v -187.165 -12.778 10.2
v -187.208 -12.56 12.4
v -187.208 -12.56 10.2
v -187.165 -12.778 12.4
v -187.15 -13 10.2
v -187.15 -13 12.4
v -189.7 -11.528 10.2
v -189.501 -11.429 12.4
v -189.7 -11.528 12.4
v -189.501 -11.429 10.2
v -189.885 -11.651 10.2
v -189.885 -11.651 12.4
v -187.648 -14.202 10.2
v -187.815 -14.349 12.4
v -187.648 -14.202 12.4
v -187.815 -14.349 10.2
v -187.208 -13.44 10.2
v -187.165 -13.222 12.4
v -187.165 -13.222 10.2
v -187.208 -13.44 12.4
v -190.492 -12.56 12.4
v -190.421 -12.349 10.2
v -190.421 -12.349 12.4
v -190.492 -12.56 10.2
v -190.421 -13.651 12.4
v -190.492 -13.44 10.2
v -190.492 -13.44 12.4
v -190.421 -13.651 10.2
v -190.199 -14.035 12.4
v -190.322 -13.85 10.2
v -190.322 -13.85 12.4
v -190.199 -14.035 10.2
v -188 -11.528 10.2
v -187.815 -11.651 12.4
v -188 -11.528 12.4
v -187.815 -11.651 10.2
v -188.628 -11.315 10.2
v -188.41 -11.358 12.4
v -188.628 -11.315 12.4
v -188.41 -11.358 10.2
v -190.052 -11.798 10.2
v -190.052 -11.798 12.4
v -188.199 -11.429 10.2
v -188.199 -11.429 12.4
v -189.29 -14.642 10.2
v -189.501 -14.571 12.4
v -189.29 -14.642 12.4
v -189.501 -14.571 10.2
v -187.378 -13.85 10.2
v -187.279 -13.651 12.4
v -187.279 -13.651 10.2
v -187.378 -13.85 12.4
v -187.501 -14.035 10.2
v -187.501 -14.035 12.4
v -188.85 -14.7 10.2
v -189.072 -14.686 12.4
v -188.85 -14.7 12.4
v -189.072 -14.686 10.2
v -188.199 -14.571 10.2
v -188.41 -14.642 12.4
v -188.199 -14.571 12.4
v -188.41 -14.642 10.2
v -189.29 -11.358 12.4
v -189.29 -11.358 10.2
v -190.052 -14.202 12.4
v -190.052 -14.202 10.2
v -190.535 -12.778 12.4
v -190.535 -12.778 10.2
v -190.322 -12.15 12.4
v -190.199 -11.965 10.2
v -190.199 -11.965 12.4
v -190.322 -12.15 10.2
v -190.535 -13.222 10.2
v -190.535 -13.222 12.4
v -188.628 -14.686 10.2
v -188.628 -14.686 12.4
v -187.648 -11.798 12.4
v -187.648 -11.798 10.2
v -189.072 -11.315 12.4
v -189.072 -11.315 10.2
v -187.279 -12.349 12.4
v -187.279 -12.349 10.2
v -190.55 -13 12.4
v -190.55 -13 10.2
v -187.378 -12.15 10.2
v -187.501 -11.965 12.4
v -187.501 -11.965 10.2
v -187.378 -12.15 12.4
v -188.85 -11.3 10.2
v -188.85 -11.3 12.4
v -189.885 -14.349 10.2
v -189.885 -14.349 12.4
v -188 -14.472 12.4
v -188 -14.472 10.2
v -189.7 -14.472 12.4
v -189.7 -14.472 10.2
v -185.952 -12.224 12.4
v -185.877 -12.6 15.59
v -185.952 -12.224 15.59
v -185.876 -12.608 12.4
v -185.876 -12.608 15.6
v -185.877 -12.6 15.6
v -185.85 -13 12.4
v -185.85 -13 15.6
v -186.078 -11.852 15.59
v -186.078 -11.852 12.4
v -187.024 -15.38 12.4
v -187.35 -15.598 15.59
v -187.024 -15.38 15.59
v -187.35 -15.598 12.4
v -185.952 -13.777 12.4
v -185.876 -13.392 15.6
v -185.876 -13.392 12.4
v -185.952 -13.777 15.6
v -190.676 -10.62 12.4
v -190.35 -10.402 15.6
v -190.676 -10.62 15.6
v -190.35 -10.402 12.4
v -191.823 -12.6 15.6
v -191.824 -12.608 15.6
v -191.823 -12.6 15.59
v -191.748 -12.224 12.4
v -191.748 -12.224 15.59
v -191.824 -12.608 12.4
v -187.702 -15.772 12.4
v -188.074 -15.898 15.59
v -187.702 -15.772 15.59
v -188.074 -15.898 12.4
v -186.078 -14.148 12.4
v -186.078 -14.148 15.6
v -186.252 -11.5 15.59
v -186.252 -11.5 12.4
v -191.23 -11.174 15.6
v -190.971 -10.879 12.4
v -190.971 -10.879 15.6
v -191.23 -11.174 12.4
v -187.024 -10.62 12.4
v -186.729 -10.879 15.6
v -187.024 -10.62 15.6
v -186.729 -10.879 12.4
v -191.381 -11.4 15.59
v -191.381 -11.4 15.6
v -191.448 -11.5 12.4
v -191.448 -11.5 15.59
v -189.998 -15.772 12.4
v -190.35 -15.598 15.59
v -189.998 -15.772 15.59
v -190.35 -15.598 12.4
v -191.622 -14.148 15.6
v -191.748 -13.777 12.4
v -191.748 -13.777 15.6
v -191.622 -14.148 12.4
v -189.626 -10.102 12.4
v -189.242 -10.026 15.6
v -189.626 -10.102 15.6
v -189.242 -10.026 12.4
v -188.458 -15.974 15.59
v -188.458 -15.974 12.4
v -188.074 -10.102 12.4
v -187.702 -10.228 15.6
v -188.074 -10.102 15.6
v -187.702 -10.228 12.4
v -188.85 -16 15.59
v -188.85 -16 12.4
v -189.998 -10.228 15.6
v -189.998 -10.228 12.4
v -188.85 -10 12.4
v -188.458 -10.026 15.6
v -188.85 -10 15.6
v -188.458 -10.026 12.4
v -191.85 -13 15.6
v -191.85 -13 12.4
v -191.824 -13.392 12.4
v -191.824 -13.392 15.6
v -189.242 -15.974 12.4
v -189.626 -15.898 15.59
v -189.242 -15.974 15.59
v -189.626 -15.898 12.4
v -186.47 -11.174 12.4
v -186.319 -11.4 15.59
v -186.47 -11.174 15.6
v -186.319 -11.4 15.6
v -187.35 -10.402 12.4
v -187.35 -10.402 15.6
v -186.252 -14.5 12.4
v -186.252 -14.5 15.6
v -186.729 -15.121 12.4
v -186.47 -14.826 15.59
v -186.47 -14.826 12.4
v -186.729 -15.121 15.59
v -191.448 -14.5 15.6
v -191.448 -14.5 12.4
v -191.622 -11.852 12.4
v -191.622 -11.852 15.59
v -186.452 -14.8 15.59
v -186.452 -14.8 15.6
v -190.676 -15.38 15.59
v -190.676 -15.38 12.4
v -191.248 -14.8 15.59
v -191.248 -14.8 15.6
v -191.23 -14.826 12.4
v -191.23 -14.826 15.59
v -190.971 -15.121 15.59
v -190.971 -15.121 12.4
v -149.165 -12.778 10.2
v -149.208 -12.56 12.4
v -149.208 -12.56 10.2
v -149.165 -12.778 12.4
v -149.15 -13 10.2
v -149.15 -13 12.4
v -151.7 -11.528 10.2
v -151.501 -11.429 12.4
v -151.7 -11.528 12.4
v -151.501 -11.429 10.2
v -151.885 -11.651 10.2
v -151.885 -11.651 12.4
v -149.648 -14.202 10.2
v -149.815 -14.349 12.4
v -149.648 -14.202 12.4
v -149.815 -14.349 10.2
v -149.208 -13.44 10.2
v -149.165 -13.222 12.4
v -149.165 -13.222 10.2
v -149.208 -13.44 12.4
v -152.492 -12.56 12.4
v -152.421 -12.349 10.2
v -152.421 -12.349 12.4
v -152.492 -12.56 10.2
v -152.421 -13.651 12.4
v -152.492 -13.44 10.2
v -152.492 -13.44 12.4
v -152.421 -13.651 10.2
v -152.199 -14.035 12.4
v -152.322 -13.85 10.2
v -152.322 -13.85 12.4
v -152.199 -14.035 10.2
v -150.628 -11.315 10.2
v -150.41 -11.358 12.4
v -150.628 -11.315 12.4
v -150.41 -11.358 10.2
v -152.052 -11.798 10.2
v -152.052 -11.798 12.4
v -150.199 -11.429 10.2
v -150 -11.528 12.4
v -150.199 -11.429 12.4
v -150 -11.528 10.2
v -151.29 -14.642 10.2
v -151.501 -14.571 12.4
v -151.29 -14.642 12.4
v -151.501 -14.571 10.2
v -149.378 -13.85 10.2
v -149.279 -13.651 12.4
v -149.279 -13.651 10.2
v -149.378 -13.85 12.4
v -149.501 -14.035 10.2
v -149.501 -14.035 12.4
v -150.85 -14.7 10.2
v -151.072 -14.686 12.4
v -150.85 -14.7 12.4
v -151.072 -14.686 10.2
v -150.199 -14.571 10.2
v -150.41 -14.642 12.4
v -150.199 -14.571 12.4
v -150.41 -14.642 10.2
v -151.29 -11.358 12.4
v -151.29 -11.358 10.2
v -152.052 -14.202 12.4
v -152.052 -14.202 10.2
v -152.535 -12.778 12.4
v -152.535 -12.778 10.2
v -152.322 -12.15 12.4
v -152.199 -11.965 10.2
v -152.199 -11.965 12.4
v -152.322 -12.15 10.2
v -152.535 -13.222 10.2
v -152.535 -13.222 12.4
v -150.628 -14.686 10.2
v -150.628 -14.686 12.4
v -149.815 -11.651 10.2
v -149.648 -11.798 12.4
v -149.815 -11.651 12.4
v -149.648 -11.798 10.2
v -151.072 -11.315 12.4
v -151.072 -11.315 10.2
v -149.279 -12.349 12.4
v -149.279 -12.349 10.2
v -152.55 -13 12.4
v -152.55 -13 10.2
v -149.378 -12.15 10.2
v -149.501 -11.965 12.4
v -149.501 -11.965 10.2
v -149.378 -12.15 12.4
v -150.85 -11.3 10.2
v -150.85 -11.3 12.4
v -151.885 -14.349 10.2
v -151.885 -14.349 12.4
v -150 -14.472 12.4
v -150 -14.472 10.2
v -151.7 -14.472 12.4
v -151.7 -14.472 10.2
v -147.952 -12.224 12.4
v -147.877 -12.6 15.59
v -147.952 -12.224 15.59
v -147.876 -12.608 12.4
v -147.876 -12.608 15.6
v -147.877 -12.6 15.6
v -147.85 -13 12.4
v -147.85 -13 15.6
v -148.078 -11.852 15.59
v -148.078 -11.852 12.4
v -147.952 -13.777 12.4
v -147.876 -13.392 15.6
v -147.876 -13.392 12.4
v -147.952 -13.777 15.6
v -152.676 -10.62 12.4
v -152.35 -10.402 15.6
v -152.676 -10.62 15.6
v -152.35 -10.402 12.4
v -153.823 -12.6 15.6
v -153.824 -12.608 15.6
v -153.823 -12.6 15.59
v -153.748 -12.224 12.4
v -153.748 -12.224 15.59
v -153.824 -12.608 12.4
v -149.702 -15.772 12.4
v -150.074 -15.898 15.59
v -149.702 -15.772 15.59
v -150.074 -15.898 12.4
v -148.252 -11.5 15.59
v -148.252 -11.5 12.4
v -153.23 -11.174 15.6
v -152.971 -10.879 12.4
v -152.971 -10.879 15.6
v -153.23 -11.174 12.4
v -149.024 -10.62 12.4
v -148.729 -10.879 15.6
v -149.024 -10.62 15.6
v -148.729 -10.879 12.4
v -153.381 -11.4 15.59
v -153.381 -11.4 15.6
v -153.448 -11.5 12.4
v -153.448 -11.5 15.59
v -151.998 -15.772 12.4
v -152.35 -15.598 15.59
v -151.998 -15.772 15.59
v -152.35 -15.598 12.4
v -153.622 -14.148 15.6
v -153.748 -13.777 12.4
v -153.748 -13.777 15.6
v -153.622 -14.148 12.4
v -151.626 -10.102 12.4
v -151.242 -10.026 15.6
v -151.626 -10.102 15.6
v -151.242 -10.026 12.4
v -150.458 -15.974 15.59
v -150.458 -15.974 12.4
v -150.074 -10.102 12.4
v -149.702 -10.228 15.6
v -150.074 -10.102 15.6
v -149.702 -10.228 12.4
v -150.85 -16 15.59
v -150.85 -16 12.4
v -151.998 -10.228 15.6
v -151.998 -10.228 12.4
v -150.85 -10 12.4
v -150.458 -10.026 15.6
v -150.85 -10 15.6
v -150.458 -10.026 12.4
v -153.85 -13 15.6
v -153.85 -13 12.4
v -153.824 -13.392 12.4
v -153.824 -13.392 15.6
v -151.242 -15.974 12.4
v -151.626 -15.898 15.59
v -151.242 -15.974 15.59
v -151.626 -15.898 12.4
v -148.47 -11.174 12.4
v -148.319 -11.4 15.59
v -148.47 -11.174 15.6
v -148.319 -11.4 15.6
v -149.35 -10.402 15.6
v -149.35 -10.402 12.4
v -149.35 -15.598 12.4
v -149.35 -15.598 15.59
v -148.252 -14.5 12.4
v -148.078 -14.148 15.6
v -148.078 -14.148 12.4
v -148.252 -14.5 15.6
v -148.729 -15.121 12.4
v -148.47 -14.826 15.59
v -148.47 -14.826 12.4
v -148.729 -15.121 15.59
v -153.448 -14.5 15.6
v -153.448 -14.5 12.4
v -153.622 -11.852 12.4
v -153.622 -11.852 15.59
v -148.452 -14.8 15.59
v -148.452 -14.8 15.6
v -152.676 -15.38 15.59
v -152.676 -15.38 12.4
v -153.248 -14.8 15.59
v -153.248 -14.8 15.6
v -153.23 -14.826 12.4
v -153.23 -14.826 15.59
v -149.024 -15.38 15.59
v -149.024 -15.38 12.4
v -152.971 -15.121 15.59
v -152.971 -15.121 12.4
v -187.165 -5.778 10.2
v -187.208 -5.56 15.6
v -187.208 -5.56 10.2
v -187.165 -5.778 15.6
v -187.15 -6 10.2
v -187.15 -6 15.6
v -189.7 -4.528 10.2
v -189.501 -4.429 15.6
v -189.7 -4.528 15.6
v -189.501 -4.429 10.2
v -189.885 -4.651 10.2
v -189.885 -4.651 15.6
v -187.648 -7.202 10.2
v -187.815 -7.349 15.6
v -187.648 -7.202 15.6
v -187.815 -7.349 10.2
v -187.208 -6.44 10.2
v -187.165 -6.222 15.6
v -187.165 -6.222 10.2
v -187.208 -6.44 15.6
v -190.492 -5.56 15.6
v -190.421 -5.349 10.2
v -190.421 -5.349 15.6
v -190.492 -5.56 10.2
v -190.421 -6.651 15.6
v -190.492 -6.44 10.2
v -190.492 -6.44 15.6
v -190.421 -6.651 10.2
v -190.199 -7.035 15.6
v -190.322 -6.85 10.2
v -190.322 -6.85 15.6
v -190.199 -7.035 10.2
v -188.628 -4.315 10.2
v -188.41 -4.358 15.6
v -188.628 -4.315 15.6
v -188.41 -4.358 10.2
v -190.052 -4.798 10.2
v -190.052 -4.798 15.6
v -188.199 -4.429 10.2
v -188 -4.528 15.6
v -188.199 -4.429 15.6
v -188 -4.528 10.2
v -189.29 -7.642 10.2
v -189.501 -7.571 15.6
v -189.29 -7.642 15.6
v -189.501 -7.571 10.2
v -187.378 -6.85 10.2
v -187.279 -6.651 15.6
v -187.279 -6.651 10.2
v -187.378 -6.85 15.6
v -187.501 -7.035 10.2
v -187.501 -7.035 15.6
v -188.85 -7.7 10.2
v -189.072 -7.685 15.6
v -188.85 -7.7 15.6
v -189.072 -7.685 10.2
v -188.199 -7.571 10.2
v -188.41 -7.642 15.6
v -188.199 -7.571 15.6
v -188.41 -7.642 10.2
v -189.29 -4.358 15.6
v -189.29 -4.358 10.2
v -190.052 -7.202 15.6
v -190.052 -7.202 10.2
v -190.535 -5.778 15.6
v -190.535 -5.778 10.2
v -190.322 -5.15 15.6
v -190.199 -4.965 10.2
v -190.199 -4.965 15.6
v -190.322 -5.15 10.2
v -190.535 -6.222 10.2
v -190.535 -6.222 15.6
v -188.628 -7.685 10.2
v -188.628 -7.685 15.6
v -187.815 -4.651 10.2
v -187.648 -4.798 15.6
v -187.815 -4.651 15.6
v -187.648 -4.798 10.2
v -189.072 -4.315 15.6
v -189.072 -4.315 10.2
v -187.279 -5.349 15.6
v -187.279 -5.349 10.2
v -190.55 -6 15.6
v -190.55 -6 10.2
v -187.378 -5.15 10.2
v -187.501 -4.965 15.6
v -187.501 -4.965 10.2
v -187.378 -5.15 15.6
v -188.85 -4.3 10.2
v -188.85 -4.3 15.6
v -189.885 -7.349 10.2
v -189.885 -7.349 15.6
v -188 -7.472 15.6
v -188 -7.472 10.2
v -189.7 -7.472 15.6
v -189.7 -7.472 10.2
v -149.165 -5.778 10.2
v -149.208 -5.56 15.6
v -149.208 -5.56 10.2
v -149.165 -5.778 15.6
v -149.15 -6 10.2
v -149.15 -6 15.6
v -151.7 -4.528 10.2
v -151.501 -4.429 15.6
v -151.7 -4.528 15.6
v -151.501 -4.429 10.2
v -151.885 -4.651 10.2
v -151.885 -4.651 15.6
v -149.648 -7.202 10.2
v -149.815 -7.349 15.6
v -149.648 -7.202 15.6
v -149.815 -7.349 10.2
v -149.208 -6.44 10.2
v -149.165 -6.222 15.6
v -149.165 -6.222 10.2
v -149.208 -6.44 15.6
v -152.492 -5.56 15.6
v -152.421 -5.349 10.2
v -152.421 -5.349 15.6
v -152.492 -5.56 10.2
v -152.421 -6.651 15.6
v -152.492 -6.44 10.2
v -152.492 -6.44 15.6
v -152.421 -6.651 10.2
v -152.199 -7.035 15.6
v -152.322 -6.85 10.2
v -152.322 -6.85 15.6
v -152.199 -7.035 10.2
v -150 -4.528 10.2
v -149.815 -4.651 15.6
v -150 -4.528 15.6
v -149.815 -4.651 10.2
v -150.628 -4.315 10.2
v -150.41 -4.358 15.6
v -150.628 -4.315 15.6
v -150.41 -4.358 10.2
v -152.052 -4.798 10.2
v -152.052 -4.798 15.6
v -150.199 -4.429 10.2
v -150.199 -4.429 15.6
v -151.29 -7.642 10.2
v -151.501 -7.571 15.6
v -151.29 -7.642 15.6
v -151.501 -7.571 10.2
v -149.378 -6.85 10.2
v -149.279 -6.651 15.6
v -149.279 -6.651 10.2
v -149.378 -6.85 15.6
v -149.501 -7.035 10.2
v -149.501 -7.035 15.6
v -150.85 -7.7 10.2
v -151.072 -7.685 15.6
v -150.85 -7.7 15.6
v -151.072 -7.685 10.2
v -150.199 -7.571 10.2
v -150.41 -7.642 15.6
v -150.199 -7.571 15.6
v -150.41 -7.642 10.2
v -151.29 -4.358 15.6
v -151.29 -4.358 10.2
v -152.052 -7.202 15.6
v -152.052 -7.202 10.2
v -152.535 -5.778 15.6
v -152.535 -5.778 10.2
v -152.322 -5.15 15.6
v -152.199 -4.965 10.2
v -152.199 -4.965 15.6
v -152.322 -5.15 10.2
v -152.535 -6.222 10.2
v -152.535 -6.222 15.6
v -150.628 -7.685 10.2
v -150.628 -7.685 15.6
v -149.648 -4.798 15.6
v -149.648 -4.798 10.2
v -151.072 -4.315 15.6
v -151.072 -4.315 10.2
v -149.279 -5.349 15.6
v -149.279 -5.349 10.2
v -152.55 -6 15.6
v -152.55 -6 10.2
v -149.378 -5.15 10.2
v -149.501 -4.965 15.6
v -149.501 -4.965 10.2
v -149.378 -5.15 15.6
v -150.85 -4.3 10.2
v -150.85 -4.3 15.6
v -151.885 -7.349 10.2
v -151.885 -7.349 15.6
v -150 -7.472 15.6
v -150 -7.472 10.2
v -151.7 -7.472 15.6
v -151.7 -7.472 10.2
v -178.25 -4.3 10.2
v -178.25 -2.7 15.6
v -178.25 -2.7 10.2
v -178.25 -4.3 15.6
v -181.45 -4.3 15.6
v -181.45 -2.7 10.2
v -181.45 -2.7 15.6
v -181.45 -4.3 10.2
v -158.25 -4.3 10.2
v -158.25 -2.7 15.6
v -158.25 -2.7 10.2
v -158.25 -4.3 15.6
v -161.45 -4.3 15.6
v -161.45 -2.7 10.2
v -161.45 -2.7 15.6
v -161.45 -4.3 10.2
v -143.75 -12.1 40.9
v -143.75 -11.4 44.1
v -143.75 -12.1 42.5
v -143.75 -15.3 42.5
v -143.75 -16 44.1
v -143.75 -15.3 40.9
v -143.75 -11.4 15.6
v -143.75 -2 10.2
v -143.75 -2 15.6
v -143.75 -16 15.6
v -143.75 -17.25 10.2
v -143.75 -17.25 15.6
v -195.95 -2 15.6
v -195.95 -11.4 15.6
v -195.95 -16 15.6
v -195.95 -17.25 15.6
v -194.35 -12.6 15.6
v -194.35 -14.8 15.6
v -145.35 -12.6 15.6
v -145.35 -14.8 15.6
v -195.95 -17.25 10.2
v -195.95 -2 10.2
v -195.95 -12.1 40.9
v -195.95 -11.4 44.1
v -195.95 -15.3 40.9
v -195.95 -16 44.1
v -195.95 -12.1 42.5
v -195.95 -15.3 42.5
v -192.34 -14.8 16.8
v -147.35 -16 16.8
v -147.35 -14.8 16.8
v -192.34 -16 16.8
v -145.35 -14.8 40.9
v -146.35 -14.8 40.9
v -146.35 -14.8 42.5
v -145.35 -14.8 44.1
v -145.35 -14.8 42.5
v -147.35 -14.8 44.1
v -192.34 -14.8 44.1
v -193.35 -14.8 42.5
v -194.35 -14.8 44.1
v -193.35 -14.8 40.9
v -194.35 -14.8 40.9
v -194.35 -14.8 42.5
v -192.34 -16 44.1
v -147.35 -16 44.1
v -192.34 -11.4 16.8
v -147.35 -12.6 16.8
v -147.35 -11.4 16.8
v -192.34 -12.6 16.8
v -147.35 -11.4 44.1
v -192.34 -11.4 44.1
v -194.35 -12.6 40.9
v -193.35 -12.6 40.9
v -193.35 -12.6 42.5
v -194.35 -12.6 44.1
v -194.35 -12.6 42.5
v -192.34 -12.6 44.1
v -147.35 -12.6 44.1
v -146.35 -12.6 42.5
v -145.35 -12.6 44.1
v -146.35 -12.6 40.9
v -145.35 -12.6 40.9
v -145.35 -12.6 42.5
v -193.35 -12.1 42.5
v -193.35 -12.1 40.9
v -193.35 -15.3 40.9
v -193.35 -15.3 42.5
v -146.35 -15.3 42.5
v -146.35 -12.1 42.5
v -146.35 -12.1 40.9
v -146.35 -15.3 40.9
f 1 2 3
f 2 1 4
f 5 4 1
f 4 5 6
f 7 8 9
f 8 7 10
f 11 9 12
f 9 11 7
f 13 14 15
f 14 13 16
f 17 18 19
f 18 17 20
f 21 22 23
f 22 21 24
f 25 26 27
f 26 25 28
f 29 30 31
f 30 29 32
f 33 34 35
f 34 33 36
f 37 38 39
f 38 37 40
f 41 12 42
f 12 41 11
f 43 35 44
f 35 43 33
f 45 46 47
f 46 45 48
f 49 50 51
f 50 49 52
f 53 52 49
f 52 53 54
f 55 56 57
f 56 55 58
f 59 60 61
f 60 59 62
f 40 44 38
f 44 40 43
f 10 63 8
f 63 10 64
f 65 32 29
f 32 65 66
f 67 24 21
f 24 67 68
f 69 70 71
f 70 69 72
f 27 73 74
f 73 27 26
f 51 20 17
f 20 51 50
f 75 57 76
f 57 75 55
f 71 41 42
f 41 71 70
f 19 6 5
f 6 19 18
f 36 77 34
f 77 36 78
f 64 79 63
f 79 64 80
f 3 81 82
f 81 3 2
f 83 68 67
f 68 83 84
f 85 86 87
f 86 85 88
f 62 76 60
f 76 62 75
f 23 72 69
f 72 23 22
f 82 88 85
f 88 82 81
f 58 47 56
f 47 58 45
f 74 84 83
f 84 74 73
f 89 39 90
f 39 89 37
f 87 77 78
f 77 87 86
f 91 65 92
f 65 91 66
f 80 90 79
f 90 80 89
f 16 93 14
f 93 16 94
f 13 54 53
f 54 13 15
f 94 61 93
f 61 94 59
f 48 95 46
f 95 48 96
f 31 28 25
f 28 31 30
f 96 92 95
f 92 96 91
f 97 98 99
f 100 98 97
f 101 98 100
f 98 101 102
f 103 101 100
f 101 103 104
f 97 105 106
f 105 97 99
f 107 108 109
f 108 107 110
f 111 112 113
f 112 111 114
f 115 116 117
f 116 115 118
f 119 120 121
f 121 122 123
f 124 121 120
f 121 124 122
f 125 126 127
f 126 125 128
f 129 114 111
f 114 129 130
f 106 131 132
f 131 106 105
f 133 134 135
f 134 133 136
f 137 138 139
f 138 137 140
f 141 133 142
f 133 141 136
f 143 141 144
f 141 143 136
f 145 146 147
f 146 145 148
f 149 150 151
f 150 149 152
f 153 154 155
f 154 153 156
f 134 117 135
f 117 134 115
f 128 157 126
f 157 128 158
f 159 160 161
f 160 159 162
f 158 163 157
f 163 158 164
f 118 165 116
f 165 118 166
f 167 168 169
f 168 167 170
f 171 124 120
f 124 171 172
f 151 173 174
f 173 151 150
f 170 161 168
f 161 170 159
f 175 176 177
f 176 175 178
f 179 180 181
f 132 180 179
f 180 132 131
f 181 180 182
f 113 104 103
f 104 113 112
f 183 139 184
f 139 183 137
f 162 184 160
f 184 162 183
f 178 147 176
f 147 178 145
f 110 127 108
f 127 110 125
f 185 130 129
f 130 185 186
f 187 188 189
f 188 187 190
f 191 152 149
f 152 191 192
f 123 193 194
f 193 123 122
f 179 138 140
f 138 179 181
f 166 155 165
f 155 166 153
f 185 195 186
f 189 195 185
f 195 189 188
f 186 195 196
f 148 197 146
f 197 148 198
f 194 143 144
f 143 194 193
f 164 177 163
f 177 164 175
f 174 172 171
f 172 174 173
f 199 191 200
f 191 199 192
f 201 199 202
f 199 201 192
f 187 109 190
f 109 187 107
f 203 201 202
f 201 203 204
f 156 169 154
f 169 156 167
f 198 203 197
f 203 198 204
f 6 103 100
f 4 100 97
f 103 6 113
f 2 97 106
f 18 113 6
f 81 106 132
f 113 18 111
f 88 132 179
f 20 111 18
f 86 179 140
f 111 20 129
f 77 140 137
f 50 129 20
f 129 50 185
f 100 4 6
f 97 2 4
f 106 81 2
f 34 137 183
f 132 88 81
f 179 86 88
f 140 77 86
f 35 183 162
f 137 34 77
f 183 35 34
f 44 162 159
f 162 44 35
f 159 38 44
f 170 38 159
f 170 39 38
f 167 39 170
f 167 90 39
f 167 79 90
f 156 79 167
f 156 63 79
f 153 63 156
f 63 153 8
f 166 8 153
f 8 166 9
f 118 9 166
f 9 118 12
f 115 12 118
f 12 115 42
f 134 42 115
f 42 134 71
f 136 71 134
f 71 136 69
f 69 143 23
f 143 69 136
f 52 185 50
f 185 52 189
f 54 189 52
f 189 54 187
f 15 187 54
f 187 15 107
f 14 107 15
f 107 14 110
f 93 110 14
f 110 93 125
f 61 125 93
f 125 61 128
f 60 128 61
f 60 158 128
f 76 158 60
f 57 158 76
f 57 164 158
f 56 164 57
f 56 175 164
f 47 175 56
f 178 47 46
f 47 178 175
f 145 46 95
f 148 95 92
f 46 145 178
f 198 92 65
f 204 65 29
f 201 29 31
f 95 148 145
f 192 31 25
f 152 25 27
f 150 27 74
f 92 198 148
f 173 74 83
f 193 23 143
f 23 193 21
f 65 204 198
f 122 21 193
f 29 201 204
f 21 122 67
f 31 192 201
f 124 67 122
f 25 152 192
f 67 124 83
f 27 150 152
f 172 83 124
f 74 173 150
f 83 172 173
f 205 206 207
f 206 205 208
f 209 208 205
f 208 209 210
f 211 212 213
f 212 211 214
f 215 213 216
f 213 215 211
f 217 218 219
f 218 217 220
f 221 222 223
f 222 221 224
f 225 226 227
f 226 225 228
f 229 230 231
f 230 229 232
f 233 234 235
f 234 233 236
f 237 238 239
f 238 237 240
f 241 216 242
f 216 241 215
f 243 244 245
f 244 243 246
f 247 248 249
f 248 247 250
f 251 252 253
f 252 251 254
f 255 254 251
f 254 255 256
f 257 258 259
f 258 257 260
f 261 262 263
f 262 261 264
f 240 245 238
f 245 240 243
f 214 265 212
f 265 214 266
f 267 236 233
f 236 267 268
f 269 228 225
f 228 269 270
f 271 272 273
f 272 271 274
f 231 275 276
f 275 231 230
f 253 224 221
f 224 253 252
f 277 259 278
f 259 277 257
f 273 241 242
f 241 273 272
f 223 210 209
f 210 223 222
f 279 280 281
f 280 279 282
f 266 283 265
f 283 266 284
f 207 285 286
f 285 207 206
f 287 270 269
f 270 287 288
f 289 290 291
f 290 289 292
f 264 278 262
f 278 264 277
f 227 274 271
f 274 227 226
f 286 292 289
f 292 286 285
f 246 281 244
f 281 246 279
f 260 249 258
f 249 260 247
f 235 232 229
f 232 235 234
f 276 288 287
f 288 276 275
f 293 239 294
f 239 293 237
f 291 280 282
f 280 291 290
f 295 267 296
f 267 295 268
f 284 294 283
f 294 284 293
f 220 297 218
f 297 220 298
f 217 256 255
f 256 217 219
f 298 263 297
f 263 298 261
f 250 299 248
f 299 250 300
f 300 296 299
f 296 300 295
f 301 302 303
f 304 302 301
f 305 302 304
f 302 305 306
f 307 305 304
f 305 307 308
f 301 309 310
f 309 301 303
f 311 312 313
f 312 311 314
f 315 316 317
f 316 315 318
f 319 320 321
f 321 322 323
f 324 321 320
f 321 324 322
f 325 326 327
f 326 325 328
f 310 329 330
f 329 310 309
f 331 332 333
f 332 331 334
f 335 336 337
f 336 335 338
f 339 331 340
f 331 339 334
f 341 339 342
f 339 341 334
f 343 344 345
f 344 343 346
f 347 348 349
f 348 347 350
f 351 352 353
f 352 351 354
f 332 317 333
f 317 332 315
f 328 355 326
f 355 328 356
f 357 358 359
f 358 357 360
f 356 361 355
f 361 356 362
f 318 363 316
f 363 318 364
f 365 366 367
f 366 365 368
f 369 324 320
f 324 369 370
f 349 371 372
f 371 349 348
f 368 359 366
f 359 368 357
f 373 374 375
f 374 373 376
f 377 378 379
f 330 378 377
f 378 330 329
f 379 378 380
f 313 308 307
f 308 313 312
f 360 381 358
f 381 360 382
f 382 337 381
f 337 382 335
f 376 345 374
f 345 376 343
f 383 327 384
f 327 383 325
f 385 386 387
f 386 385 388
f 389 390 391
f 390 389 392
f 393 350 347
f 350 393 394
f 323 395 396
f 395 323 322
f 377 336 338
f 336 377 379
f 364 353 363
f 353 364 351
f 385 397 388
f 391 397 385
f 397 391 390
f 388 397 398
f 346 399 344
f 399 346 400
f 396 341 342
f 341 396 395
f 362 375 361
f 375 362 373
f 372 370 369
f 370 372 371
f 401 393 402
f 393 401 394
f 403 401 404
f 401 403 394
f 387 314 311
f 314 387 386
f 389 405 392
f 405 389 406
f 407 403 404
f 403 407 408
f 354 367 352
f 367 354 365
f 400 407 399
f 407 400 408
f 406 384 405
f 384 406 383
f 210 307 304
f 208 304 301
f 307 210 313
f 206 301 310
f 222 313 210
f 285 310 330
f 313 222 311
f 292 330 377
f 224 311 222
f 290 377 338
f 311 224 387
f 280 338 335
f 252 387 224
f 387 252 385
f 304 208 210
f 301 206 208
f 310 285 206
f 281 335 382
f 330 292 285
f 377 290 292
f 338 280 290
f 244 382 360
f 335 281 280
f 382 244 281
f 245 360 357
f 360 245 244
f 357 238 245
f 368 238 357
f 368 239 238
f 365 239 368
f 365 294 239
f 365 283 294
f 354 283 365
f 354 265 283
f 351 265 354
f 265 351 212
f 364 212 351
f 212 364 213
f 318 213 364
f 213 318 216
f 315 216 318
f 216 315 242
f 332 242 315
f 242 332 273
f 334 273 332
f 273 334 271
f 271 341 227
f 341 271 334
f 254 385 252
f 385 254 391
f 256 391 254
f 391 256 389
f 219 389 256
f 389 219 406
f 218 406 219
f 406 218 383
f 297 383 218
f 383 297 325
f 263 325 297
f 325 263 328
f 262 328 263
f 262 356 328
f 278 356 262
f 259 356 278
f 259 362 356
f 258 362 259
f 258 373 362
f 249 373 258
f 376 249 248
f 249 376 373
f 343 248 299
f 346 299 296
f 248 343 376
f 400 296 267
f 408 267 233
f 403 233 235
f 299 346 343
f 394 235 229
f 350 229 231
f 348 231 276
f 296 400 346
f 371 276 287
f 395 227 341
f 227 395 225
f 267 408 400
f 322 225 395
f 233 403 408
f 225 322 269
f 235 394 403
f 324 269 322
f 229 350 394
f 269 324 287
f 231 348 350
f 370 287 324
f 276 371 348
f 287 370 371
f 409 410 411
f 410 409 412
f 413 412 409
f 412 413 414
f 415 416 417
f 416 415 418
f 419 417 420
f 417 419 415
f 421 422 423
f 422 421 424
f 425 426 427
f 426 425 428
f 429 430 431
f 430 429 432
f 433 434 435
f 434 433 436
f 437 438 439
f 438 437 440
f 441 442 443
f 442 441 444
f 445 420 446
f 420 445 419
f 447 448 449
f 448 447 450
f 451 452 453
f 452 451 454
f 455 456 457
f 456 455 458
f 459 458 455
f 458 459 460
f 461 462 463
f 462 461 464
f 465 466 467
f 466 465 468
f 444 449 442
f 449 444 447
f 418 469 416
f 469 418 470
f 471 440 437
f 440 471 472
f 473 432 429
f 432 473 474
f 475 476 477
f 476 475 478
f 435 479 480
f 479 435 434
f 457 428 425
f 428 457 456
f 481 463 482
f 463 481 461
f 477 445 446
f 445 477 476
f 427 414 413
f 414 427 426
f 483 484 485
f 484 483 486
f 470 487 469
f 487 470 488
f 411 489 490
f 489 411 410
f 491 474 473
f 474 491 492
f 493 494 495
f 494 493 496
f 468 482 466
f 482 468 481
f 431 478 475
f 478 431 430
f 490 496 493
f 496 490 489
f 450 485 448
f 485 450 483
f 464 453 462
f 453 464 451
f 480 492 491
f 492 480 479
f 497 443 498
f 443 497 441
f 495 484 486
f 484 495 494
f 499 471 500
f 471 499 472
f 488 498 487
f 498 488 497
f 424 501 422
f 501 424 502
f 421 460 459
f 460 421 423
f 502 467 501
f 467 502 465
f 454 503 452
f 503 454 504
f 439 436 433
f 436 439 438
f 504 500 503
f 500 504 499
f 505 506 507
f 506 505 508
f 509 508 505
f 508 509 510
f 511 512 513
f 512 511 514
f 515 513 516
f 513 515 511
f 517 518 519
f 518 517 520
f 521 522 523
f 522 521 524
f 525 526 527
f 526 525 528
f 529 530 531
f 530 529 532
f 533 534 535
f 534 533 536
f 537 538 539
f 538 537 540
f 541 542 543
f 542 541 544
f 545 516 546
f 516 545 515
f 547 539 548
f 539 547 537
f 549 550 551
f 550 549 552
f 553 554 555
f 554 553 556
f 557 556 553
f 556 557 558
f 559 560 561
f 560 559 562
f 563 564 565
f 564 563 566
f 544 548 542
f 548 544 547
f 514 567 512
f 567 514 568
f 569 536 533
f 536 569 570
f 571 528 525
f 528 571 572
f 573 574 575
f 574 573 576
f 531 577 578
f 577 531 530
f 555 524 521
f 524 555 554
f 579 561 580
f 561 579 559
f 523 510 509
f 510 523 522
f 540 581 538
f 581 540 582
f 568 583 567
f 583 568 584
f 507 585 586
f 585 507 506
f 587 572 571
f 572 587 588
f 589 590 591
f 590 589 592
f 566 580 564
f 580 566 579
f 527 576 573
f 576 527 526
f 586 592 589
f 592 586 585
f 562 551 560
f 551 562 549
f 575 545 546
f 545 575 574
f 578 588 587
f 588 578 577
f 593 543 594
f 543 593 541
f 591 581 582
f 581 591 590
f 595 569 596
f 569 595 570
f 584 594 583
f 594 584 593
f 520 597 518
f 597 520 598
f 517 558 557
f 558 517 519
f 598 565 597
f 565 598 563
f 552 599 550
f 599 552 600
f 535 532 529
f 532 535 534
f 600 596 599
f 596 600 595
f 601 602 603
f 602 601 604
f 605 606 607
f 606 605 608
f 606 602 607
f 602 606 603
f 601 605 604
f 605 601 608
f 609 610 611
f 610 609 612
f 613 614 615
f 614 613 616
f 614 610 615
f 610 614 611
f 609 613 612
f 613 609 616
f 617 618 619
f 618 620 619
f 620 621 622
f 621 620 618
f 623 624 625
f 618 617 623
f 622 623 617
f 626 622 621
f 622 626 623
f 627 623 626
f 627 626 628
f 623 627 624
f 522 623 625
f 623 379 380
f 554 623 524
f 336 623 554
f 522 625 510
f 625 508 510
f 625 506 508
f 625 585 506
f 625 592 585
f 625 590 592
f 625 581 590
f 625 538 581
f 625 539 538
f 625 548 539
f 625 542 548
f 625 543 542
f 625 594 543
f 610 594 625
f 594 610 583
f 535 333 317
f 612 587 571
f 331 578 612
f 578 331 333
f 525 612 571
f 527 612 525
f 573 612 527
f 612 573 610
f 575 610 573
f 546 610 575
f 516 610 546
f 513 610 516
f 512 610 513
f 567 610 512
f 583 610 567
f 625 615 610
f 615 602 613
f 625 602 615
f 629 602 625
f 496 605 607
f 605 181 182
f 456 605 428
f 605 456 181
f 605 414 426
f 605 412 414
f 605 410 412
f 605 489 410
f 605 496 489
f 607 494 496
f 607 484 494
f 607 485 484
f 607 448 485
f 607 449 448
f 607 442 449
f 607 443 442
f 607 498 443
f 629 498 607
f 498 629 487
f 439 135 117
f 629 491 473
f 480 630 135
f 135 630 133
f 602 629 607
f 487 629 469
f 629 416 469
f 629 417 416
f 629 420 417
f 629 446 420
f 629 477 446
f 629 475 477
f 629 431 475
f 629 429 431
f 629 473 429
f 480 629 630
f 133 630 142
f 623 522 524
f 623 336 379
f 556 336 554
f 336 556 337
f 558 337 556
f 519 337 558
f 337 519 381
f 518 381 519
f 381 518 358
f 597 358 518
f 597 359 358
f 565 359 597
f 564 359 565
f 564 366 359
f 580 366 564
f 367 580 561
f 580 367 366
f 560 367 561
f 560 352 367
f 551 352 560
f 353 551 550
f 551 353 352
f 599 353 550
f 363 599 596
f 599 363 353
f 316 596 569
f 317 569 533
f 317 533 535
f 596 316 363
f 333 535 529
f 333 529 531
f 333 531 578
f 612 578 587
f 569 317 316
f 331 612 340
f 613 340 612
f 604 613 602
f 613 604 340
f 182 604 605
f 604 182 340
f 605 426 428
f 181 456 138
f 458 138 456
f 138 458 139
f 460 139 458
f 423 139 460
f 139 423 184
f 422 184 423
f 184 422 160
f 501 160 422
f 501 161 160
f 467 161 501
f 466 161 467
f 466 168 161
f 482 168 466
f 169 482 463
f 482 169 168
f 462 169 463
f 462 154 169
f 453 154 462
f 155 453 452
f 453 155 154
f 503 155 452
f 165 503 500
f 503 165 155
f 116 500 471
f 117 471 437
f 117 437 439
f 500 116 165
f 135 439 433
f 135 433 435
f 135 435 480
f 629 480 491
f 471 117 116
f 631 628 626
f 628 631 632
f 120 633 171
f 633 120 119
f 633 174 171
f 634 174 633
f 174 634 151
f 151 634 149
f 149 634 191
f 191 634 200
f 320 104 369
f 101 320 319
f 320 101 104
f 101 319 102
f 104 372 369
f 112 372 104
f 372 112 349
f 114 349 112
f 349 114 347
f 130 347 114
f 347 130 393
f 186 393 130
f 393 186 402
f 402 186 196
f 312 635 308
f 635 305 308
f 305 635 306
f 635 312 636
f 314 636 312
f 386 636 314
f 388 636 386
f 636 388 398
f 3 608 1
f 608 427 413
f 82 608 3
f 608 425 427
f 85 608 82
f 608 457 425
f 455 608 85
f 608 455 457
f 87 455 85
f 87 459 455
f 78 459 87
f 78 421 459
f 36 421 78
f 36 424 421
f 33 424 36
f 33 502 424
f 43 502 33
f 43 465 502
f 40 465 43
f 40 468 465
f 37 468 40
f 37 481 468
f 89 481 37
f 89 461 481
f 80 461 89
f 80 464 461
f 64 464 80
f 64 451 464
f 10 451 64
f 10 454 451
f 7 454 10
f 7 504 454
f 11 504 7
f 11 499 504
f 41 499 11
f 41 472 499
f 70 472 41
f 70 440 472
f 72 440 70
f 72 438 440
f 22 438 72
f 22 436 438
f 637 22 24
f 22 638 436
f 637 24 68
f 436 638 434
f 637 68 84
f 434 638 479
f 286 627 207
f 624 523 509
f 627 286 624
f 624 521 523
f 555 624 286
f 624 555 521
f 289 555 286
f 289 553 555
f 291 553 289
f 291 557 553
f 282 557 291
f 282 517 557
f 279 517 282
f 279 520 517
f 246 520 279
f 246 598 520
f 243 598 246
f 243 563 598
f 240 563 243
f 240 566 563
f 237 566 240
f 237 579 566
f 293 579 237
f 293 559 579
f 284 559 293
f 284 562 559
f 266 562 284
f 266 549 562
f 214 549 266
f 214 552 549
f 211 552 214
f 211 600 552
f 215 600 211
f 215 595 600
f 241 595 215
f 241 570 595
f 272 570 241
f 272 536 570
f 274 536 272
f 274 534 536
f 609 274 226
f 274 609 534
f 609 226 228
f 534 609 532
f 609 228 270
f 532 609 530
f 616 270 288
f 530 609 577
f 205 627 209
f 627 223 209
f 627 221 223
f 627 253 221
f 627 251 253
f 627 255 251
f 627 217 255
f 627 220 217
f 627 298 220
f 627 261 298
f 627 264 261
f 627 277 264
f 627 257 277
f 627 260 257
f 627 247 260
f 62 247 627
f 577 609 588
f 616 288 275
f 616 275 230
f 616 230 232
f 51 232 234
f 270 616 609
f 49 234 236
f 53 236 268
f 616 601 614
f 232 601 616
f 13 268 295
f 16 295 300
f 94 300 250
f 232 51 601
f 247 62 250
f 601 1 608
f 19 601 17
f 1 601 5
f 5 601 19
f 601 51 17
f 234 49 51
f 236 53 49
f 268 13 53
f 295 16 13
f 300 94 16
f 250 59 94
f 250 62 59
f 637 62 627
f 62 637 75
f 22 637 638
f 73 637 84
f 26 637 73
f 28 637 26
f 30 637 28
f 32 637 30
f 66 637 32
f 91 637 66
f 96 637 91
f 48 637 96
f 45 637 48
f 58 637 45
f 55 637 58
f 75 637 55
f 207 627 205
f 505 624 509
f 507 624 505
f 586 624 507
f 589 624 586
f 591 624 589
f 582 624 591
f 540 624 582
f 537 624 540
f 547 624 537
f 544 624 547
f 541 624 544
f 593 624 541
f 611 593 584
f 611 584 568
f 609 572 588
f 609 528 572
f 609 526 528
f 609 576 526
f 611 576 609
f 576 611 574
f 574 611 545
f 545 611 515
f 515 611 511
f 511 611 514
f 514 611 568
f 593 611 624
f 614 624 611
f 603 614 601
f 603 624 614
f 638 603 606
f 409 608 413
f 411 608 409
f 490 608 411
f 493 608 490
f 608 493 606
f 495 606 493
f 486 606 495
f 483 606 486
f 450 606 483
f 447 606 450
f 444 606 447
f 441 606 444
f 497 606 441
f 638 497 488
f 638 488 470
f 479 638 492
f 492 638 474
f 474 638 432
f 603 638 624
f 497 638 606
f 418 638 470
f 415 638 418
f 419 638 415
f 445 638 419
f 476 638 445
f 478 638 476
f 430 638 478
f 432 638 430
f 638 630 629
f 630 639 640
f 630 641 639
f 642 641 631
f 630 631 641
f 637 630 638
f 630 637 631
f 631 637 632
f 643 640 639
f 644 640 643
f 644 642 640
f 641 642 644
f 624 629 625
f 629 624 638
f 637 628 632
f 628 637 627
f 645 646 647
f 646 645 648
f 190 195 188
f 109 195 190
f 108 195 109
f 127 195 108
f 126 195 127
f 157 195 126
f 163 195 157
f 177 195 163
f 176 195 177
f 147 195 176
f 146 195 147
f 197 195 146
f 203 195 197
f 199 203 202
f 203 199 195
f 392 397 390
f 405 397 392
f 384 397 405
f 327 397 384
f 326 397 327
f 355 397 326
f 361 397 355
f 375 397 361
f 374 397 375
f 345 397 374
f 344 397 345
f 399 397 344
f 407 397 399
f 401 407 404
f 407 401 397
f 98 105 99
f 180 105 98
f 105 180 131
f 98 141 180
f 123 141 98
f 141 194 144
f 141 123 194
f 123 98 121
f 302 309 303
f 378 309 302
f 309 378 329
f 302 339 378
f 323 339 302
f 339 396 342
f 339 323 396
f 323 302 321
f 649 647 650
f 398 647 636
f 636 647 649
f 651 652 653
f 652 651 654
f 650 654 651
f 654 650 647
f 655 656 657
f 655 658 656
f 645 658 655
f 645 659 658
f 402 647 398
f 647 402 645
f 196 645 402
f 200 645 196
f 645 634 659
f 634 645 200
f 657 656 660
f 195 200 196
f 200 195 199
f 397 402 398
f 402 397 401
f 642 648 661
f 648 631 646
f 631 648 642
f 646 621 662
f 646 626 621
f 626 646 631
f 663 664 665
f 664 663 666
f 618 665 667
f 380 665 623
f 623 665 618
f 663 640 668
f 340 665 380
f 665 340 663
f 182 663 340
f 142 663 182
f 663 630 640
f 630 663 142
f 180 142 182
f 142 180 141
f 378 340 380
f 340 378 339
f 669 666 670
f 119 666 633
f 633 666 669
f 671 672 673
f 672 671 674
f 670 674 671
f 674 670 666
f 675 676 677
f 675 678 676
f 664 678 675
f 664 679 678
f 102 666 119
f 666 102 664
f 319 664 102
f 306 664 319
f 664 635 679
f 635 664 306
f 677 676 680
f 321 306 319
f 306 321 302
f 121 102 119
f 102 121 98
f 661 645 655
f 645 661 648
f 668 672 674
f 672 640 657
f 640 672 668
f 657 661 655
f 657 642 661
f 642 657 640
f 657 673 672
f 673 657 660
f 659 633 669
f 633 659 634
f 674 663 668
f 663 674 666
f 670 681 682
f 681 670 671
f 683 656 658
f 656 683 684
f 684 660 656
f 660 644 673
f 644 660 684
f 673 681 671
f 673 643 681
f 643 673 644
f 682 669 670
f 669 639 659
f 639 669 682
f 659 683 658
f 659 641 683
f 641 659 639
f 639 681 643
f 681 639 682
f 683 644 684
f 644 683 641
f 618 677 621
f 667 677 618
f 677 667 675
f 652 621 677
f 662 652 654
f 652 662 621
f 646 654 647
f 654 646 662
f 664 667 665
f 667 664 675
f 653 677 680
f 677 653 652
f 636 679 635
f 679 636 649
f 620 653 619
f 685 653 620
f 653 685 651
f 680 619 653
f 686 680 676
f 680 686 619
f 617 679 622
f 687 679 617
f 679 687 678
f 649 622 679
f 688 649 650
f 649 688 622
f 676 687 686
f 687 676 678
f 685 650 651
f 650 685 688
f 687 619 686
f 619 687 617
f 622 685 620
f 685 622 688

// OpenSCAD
// file: cargo_layout_t5_params.scad
// cargo_layout_t5_params.scad -- GENERATED by tools/cargo_layout_fit.py
// --write-scad.  Do not edit: change the Python constants and regenerate.
// Hull frame, mm (X=+port, Y=+aft, Z=+dorsal).  Rev T5f, 2026-09-21.
// License: CERN-OHL-W-2.0 — see LICENSES/CERN-OHL-W 2.0 (SPDX-License-Identifier: CERN-OHL-W-2.0)
SHAFT_Y = 46.6000;
SHAFT_Z = 69.0900;
GEAR_MODULE = 1.0000;
WHEEL_N = 40.0000;
WORM_STARTS = 6.0000;
WHEEL_PD = 40.0000;
WORM_PD = 26.0000;
STAGE_C = 33.0000;
WORM_Z = 102.0900;
GEAR_X_OUT = -122.7500;
WHEEL_FACE = 5.0000;
WORM_X = -125.2500;
WORM_LEN = 10.0000;
MOTOR_D = 20.0000;
MOTOR_BODY_L = 41.0000;
MOTOR_ENC_L = 6.0000;
MOTOR_SHAFT_L = 18.0000;
MOTOR_FACE_Y = 39.1000;
MOTOR_HOLE_S = 15.0000;
BATT_L = 142.0000;
BATT_W = 50.0000;
BATT_H = 38.0000;
BATT_X0 = -194.8500;
BATT_X1 = -144.8500;
BATT_Y0 = -58.0000;
BATT_Y1 = 84.0000;
BATT_Z0 = 90.0000;
BATT_Z1 = 128.0000;
CRADLE_T = 2.4000;
CRADLE_FWD_BOSS_Y = -50.0000;
CRADLE_AFT_BOSS_Y = 80.0000;
CRADLE_BOSS_DX = 18.0000;
CRADLE_XC = -169.8500;
CRADLE_TOP_Z = 130.4000;
CRADLE_RELIEF_Z = 127.0000;
TRAY_X = 40.0000;
TRAY_Y = 60.0000;
TRAY_D = 55.0000;
INARA_XC = -132.0000;
INARA_YC = 86.0000;
INARA_BOSS_DX = 15.0000;
INARA_BOSS_DY = 25.0000;
NODE_L = 58.0000;
NODE_H = 37.0000;
NODE_T = 22.0000;
NODE_CABLE = 10.0000;
N_CHIN_X_IN = -164.8500;
N_CHIN_Y0 = -58.0000;
N_CHIN_Z0 = 66.0000;
N_AFT_Y0 = 99.5000;
N_AFT_Z0 = 87.0000;
HOIST_Y = 55.5000;
HOIST_DX = 30.9000;
LINE_R = 0.5000;
WORM_HUB_L = 2.5000;
WORM_OFFSET = 0.0000;
WORM_YC = 46.6000;
BRAKE_COLLAR_D = 14.0000;
BRAKE_COLLAR_L = 4.0000;
BRAKE_Y = 54.1000;
BRAKE_SOL_D = 12.0000;
BRAKE_SOL_L = 24.0000;
BRAKE_SOL_Y0 = 62.1000;
SENSOR_PCB_T = 3.0000;
STAGE_RATIO = 6.6667;
DRUM_D = 16.0000;
DRUM_L = 12.0000;
SPOOL_Z0 = 133.4000;
BATT_XC = -169.8500;
RAMP_X0 = -194.0000;
RAMP_X1 = -142.0000;
RAMP_Z0 = 8.0000;
RAMP_Z1 = 44.0000;
RAMP_OVERLAP = 6.0000;
X_CL = -169.8500;
GAP_MM = 3.0000;
BRAKE_SOL_X = -126.7500;
BOARD_L = 42.9000;
BOARD_W = 36.5000;
BOARD_T = 7.4000;
BOARD_X0 = -117.7500;
BOARD_Y0 = 55.0000;
BOARD_Z0 = 83.0000;
N_CHIN_Y1 = 0.0000;
N_CHIN_Z1 = 88.0000;
SHELF_T = 2.4000;
SHELF_Z0 = 63.6000;
SHELF_Y0 = -52.0000;
SHELF_Y1 = 1.6000;
SHELF_SILL_Y1 = -45.0000;
OBSERVER_L = 76.8000;
OBSERVER_W = 70.8000;
OBSERVER_T = 20.0000;
OBSERVER_Y0 = 108.5000;
OBSERVER_Z0 = 14.2000;
GW_PCB_L = 49.0000;
GW_PCB_W = 25.5000;
GW_PCB_T = 1.6000;
GW_FRONT_H = 9.0000;
GW_BACK_H = 3.0000;
GW_RAIL_T = 1.6000;
GW_RAIL_CLR = 0.3000;
GW_RAIL_LIP = 1.2000;
GW_BASE_T = 5.4000;
GW_CBORE_D = 6.0000;
GW_CBORE_H = 3.2000;
GW_BOSS_H = 4.0000;
GW_SLAB_Z = 6.2000;
GW_XC = -169.8500;
GW_X0 = -194.3500;
GW_X1 = -145.3500;
GW_TRAY_X0 = -195.9500;
GW_TRAY_X1 = -143.7500;
GW_BASE_Y0 = -17.2500;
GW_TRAY_Y0 = -16.0000;
GW_PCB_Y0 = -14.5000;
GW_PCB_Y1 = -12.9000;
GW_TRAY_Y1 = -11.4000;
GW_ENV_Y0 = -17.5000;
GW_ENV_Y1 = -3.9000;
GW_Z0 = 10.2000;
GW_PCB_Z0 = 15.6000;
GW_PCB_Z1 = 41.1000;
GW_TRAY_Z1 = 44.1000;
GW_BASE_Y1 = -2.0000;
GW_BOSS_DX = 19.0000;
GW_BOSS_H2 = 3.5000;
N_AFT_XC = [-139.85, -200.85];
CRADLE_RELIEF_Y = [-20.00, 2.00];
BRACKET_FEET = [[10.60, 124.09], [40.00, 124.09], [64.00, 77.00]];
SHELF_BOSS = [[-199.85, -49.00], [-139.85, -49.00], [-189.85, -33.00], [-149.85, -33.00]];
OBSERVER_BOSS = [[-30.00, 4.00, 4.00], [30.00, 4.00, 4.00], [-30.00, 8.50, 3.50], [30.00, 8.50, 3.50]];
GW_BOSS = [[-19.00, -13.00], [19.00, -13.00], [-19.00, -6.00], [19.00, -6.00]];
// main file
// ===========================================================================
// HULL-FRAME COORDINATE STANDARD - Rev R1 (2026-06-11).  See AGENTS.md.
//   Hull frame (canonical for ALL design artifacts): X = +port (left),
//   Y = +aft (back), Z = +dorsal (up); origin = SerenityAssembly.FCStd
//   world origin.  MODELLED DIRECTLY IN HULL FRAME; the exported STL imports
//   into serenity_assembly.py at identity placement.
// ===========================================================================
// ============================================================
// gateway_door_tray.scad -- Rev T5f (2026-09-21)
// Card-edge tray for the cargo-door servo GATEWAY (GW-CARGO-DOOR: one
// SKIPPER-CAN-PERIPH-GW-PCB built at N_STACKS=1, 49.0 x 25.5 x 1.6 mm, no
// mounting holes -- see docs/CARGO_DOOR_GATEWAY_SPEC.md and
// avionics/kicad/CAN-PERIPH-GW-1/CAN-PERIPH-GW-1.md "Deployment" 4).
// Every station is from cargo_layout_t5_params.scad (GENERATED by
// tools/cargo_layout_fit.py --write-scad; PASS 2026-09-21).
//
// WHERE.  The board STANDS transverse (board plane normal to hull Y) on the
// solid 6.2 mm belly slab the sealed ramp fairing leaves under the chin
// shelf, X -196..-144, Y -17.25..-2, Z 10.2..44.1 -- i.e. right at the forward
// rim of the clamshell aperture (Y 2) where the door hinges' forward ends
// are, so the three servo pigtails are short (docs spec, section 6).  The
// component side faces AFT into the bay: J_FLEX, the two bus daisy-chain
// pairs and J_SWD are reachable through the open doors for service; the
// SOIC isolators on the back face the ramp fairing (the base slab is 2.75 mm
// off the floor-level wall at Y -20, the parts 2.5 mm off it above Z 18,
// more where the fairing leans forward above Z 15).  The chin
// shelf underside is 22 mm above the rail tops; the mission payload box
// (Y >= 4.7) clears the tallest front part (J_FLEX pins, Y -3.9) by 8.6 mm.
//
// WHAT IT IS.  A 5.4 mm CF-PETG base slab 52.2 x 15.25 mm (Y -17.25..-2)
// on four 7 x 7 mm slab bosses (M3 heat-set, RX-M3x5.7 -- 4 mm boss + 2 mm
// into the shell slab; M3 x 8 SHCS).  The rear screw row (Y -13) lies under
// the board's bottom edge, so its heads are counterbored O6.0 x 3.2 into
// the base top (1.25 mm walls) and COVERED by the board (cut the keeper
// tie, lift the board, and the screws are exposed); the front row (Y -6)
// sits forward of the rails with its heads exposed on the same top.  Two
// vertical side rails (1.6 mm outer wall + 1.2 mm fore/aft lips over 2 mm
// of the board's short edges, 2.2 mm slot = 1.6 board + 2 x 0.3) take the
// board from above; a fore/aft lip pair on the block top locates the bottom
// edge; a cable-tie keeper across the top edge runs through slots in both
// rail tops (the rails stand 3 mm above the board).  Two more tie slots in
// the forward apron take the servo pigtail bundle as strain relief.
// HOST CONSTRAINT carried to the board: no part within 2.5 mm of the two
// SHORT edges and the BOTTOM long edge on either face (the rail lips and
// block lips run there); the J_FLEX header may be anywhere else.
//
// LOADS.  Board + tray ~10 g (VERIFY: weigh the populated board; the BOM
//   carries an estimate) -> 0.25 N at the 2.5 g hard-landing case.  The
//   side rails are 1.6 x 4.6 mm columns 28.5 mm tall above the slab; as a
//   cantilever each sees M = 0.12 N x 0.03 m = 0.004 N.m against
//   Z = 4.6 x 1.6^2 / 6 = 2.0 mm^3 -> 2 MPa, FOS > 20 on a 45 MPa allowable.
//   The board is clamped on three edges, so its own first mode is set by the
//   49 mm free span between the rails: a 1.6 mm FR4 plate clamped on two
//   opposite edges (E ~ 20 GPa) is well above 1 kHz -- clear of the 470 Hz
//   EDF shaft rate and of every airframe mode.
//
// PRINT ORIENTATION: base slab flat on the bed, rails up (the rails print
//   as vertical walls -- 4 perimeters at 0.4 mm covers the 1.6 mm wall);
//   3 perimeters elsewhere, 30 % gyroid, CF-PETG (20 % CF), hardened nozzle.
//   No supports: the tie slots are horizontal through-slots <= 3.2 mm and
//   bridge; the rear counterbores are open from the top.  Est. 5 g (exported volume x 1.05 g/cm^3 -- see the BOM row
//   PRINT-GW-DOOR-TRAY).
//
// Author: Steve Griffing, PE(CSE), CISSP-ISSEP, CPP
// AI note: Written by Claude (model: Claude Opus 5, Anthropic) under the
//   author's direction, 2026-09-21, per AGENTS.md SS3 AI attribution.
// License: CC BY 4.0 -- creativecommons.org/licenses/by/4.0
// ============================================================

include <cargo_layout_t5_params.scad>

$fn = 48;
EPS = 0.01;

M3_CLR     = 3.4;                  // M3 clearance through the base
LIP_IN     = 2.0;                  // rail lip reach over the board's short edges (X)
LIP_H      = 1.2;                  // block-top lip height fore/aft of the bottom edge
TIE_SLOT   = [3.2, 1.6];           // cable-tie through-slot (long x short)
TIE_Z      = GW_PCB_Z1 + 0.6;      // keeper tie passes just over the board's top edge
APRON_TIE_Y = -3.5;                // strain-relief tie slots in the forward apron
APRON_TIE_X = [GW_XC - 10, GW_XC + 10];
BLOCK_Z1   = GW_Z0 + GW_BASE_T;    // 15.6: base slab top = board bottom edge
SLOT_Y     = [GW_PCB_Y0 - GW_RAIL_CLR, GW_PCB_Y1 + GW_RAIL_CLR];   // board slot in Y

// ---------------------------------------------------------------------------
// base: 5.4 mm slab Y -17.25..-2, four M3 holes (rear row counterbored from
// the slab top, under the board), two pigtail strain-relief slots forward
// ---------------------------------------------------------------------------
module base() {
    difference() {
        translate([GW_TRAY_X0, GW_BASE_Y0, GW_Z0])
            cube([GW_TRAY_X1 - GW_TRAY_X0, GW_BASE_Y1 - GW_BASE_Y0, GW_BASE_T]);
        for (b = GW_BOSS) {
            translate([GW_XC + b[0], b[1], GW_Z0 - 1]) cylinder(d = M3_CLR, h = GW_BASE_T + 2);
            if (b[1] < GW_TRAY_Y1)   // rear row: counterbore for the SHCS head under the board
                translate([GW_XC + b[0], b[1], BLOCK_Z1 - GW_CBORE_H])
                    cylinder(d = GW_CBORE_D, h = GW_CBORE_H + 1);
        }
        for (x = APRON_TIE_X)
            translate([x - TIE_SLOT[0] / 2, APRON_TIE_Y - TIE_SLOT[1] / 2, GW_Z0 - 1])
                cube([TIE_SLOT[0], TIE_SLOT[1], GW_BASE_T + 2]);
    }
}

// ---------------------------------------------------------------------------
// slab-top lips: two 1.2 mm ridges along X, fore and aft of the board slot,
// so the bottom edge is located in Y on the slab top (Z 15.6)
// ---------------------------------------------------------------------------
module base_lips() {
    for (y = [[GW_TRAY_Y0, SLOT_Y[0]], [SLOT_Y[1], GW_TRAY_Y1]])
        translate([GW_X0 - EPS, y[0], BLOCK_Z1 - EPS])
            cube([GW_X1 - GW_X0 + 2 * EPS, y[1] - y[0], LIP_H + EPS]);
}

// ---------------------------------------------------------------------------
// side rails: outer wall (1.6 in X, full rail depth 4.6 in Y) plus fore and
// aft lips (1.2 in Y) reaching LIP_IN over the board's short edge; the slot
// between the lips is GW_PCB_T + 2 x GW_RAIL_CLR.  A cable-tie slot through
// the outer wall just above the board's top edge takes the keeper tie.
// ---------------------------------------------------------------------------
module side_rail(sx) {
    xo = sx > 0 ? GW_X1 : GW_TRAY_X0;            // outer-wall X0
    xl = sx > 0 ? GW_X1 - LIP_IN : GW_X0;        // lip X0
    difference() {
        union() {
            translate([xo, GW_TRAY_Y0, BLOCK_Z1 - EPS])
                cube([GW_RAIL_T, GW_TRAY_Y1 - GW_TRAY_Y0, GW_TRAY_Z1 - BLOCK_Z1 + EPS]);
            for (y = [[GW_TRAY_Y0, SLOT_Y[0]], [SLOT_Y[1], GW_TRAY_Y1]])
                translate([xl, y[0], BLOCK_Z1 - EPS])
                    cube([LIP_IN + EPS, y[1] - y[0], GW_TRAY_Z1 - BLOCK_Z1 + EPS]);
        }
        // keeper-tie slot through the outer wall (long axis along Y)
        translate([xo - 1, (GW_PCB_Y0 + GW_PCB_Y1) / 2 - TIE_SLOT[0] / 2, TIE_Z - TIE_SLOT[1] / 2])
            cube([GW_RAIL_T + 2, TIE_SLOT[0], TIE_SLOT[1]]);
    }
}

union() {
    base();
    base_lips();
    side_rail(-1);
    side_rail(+1);
}
